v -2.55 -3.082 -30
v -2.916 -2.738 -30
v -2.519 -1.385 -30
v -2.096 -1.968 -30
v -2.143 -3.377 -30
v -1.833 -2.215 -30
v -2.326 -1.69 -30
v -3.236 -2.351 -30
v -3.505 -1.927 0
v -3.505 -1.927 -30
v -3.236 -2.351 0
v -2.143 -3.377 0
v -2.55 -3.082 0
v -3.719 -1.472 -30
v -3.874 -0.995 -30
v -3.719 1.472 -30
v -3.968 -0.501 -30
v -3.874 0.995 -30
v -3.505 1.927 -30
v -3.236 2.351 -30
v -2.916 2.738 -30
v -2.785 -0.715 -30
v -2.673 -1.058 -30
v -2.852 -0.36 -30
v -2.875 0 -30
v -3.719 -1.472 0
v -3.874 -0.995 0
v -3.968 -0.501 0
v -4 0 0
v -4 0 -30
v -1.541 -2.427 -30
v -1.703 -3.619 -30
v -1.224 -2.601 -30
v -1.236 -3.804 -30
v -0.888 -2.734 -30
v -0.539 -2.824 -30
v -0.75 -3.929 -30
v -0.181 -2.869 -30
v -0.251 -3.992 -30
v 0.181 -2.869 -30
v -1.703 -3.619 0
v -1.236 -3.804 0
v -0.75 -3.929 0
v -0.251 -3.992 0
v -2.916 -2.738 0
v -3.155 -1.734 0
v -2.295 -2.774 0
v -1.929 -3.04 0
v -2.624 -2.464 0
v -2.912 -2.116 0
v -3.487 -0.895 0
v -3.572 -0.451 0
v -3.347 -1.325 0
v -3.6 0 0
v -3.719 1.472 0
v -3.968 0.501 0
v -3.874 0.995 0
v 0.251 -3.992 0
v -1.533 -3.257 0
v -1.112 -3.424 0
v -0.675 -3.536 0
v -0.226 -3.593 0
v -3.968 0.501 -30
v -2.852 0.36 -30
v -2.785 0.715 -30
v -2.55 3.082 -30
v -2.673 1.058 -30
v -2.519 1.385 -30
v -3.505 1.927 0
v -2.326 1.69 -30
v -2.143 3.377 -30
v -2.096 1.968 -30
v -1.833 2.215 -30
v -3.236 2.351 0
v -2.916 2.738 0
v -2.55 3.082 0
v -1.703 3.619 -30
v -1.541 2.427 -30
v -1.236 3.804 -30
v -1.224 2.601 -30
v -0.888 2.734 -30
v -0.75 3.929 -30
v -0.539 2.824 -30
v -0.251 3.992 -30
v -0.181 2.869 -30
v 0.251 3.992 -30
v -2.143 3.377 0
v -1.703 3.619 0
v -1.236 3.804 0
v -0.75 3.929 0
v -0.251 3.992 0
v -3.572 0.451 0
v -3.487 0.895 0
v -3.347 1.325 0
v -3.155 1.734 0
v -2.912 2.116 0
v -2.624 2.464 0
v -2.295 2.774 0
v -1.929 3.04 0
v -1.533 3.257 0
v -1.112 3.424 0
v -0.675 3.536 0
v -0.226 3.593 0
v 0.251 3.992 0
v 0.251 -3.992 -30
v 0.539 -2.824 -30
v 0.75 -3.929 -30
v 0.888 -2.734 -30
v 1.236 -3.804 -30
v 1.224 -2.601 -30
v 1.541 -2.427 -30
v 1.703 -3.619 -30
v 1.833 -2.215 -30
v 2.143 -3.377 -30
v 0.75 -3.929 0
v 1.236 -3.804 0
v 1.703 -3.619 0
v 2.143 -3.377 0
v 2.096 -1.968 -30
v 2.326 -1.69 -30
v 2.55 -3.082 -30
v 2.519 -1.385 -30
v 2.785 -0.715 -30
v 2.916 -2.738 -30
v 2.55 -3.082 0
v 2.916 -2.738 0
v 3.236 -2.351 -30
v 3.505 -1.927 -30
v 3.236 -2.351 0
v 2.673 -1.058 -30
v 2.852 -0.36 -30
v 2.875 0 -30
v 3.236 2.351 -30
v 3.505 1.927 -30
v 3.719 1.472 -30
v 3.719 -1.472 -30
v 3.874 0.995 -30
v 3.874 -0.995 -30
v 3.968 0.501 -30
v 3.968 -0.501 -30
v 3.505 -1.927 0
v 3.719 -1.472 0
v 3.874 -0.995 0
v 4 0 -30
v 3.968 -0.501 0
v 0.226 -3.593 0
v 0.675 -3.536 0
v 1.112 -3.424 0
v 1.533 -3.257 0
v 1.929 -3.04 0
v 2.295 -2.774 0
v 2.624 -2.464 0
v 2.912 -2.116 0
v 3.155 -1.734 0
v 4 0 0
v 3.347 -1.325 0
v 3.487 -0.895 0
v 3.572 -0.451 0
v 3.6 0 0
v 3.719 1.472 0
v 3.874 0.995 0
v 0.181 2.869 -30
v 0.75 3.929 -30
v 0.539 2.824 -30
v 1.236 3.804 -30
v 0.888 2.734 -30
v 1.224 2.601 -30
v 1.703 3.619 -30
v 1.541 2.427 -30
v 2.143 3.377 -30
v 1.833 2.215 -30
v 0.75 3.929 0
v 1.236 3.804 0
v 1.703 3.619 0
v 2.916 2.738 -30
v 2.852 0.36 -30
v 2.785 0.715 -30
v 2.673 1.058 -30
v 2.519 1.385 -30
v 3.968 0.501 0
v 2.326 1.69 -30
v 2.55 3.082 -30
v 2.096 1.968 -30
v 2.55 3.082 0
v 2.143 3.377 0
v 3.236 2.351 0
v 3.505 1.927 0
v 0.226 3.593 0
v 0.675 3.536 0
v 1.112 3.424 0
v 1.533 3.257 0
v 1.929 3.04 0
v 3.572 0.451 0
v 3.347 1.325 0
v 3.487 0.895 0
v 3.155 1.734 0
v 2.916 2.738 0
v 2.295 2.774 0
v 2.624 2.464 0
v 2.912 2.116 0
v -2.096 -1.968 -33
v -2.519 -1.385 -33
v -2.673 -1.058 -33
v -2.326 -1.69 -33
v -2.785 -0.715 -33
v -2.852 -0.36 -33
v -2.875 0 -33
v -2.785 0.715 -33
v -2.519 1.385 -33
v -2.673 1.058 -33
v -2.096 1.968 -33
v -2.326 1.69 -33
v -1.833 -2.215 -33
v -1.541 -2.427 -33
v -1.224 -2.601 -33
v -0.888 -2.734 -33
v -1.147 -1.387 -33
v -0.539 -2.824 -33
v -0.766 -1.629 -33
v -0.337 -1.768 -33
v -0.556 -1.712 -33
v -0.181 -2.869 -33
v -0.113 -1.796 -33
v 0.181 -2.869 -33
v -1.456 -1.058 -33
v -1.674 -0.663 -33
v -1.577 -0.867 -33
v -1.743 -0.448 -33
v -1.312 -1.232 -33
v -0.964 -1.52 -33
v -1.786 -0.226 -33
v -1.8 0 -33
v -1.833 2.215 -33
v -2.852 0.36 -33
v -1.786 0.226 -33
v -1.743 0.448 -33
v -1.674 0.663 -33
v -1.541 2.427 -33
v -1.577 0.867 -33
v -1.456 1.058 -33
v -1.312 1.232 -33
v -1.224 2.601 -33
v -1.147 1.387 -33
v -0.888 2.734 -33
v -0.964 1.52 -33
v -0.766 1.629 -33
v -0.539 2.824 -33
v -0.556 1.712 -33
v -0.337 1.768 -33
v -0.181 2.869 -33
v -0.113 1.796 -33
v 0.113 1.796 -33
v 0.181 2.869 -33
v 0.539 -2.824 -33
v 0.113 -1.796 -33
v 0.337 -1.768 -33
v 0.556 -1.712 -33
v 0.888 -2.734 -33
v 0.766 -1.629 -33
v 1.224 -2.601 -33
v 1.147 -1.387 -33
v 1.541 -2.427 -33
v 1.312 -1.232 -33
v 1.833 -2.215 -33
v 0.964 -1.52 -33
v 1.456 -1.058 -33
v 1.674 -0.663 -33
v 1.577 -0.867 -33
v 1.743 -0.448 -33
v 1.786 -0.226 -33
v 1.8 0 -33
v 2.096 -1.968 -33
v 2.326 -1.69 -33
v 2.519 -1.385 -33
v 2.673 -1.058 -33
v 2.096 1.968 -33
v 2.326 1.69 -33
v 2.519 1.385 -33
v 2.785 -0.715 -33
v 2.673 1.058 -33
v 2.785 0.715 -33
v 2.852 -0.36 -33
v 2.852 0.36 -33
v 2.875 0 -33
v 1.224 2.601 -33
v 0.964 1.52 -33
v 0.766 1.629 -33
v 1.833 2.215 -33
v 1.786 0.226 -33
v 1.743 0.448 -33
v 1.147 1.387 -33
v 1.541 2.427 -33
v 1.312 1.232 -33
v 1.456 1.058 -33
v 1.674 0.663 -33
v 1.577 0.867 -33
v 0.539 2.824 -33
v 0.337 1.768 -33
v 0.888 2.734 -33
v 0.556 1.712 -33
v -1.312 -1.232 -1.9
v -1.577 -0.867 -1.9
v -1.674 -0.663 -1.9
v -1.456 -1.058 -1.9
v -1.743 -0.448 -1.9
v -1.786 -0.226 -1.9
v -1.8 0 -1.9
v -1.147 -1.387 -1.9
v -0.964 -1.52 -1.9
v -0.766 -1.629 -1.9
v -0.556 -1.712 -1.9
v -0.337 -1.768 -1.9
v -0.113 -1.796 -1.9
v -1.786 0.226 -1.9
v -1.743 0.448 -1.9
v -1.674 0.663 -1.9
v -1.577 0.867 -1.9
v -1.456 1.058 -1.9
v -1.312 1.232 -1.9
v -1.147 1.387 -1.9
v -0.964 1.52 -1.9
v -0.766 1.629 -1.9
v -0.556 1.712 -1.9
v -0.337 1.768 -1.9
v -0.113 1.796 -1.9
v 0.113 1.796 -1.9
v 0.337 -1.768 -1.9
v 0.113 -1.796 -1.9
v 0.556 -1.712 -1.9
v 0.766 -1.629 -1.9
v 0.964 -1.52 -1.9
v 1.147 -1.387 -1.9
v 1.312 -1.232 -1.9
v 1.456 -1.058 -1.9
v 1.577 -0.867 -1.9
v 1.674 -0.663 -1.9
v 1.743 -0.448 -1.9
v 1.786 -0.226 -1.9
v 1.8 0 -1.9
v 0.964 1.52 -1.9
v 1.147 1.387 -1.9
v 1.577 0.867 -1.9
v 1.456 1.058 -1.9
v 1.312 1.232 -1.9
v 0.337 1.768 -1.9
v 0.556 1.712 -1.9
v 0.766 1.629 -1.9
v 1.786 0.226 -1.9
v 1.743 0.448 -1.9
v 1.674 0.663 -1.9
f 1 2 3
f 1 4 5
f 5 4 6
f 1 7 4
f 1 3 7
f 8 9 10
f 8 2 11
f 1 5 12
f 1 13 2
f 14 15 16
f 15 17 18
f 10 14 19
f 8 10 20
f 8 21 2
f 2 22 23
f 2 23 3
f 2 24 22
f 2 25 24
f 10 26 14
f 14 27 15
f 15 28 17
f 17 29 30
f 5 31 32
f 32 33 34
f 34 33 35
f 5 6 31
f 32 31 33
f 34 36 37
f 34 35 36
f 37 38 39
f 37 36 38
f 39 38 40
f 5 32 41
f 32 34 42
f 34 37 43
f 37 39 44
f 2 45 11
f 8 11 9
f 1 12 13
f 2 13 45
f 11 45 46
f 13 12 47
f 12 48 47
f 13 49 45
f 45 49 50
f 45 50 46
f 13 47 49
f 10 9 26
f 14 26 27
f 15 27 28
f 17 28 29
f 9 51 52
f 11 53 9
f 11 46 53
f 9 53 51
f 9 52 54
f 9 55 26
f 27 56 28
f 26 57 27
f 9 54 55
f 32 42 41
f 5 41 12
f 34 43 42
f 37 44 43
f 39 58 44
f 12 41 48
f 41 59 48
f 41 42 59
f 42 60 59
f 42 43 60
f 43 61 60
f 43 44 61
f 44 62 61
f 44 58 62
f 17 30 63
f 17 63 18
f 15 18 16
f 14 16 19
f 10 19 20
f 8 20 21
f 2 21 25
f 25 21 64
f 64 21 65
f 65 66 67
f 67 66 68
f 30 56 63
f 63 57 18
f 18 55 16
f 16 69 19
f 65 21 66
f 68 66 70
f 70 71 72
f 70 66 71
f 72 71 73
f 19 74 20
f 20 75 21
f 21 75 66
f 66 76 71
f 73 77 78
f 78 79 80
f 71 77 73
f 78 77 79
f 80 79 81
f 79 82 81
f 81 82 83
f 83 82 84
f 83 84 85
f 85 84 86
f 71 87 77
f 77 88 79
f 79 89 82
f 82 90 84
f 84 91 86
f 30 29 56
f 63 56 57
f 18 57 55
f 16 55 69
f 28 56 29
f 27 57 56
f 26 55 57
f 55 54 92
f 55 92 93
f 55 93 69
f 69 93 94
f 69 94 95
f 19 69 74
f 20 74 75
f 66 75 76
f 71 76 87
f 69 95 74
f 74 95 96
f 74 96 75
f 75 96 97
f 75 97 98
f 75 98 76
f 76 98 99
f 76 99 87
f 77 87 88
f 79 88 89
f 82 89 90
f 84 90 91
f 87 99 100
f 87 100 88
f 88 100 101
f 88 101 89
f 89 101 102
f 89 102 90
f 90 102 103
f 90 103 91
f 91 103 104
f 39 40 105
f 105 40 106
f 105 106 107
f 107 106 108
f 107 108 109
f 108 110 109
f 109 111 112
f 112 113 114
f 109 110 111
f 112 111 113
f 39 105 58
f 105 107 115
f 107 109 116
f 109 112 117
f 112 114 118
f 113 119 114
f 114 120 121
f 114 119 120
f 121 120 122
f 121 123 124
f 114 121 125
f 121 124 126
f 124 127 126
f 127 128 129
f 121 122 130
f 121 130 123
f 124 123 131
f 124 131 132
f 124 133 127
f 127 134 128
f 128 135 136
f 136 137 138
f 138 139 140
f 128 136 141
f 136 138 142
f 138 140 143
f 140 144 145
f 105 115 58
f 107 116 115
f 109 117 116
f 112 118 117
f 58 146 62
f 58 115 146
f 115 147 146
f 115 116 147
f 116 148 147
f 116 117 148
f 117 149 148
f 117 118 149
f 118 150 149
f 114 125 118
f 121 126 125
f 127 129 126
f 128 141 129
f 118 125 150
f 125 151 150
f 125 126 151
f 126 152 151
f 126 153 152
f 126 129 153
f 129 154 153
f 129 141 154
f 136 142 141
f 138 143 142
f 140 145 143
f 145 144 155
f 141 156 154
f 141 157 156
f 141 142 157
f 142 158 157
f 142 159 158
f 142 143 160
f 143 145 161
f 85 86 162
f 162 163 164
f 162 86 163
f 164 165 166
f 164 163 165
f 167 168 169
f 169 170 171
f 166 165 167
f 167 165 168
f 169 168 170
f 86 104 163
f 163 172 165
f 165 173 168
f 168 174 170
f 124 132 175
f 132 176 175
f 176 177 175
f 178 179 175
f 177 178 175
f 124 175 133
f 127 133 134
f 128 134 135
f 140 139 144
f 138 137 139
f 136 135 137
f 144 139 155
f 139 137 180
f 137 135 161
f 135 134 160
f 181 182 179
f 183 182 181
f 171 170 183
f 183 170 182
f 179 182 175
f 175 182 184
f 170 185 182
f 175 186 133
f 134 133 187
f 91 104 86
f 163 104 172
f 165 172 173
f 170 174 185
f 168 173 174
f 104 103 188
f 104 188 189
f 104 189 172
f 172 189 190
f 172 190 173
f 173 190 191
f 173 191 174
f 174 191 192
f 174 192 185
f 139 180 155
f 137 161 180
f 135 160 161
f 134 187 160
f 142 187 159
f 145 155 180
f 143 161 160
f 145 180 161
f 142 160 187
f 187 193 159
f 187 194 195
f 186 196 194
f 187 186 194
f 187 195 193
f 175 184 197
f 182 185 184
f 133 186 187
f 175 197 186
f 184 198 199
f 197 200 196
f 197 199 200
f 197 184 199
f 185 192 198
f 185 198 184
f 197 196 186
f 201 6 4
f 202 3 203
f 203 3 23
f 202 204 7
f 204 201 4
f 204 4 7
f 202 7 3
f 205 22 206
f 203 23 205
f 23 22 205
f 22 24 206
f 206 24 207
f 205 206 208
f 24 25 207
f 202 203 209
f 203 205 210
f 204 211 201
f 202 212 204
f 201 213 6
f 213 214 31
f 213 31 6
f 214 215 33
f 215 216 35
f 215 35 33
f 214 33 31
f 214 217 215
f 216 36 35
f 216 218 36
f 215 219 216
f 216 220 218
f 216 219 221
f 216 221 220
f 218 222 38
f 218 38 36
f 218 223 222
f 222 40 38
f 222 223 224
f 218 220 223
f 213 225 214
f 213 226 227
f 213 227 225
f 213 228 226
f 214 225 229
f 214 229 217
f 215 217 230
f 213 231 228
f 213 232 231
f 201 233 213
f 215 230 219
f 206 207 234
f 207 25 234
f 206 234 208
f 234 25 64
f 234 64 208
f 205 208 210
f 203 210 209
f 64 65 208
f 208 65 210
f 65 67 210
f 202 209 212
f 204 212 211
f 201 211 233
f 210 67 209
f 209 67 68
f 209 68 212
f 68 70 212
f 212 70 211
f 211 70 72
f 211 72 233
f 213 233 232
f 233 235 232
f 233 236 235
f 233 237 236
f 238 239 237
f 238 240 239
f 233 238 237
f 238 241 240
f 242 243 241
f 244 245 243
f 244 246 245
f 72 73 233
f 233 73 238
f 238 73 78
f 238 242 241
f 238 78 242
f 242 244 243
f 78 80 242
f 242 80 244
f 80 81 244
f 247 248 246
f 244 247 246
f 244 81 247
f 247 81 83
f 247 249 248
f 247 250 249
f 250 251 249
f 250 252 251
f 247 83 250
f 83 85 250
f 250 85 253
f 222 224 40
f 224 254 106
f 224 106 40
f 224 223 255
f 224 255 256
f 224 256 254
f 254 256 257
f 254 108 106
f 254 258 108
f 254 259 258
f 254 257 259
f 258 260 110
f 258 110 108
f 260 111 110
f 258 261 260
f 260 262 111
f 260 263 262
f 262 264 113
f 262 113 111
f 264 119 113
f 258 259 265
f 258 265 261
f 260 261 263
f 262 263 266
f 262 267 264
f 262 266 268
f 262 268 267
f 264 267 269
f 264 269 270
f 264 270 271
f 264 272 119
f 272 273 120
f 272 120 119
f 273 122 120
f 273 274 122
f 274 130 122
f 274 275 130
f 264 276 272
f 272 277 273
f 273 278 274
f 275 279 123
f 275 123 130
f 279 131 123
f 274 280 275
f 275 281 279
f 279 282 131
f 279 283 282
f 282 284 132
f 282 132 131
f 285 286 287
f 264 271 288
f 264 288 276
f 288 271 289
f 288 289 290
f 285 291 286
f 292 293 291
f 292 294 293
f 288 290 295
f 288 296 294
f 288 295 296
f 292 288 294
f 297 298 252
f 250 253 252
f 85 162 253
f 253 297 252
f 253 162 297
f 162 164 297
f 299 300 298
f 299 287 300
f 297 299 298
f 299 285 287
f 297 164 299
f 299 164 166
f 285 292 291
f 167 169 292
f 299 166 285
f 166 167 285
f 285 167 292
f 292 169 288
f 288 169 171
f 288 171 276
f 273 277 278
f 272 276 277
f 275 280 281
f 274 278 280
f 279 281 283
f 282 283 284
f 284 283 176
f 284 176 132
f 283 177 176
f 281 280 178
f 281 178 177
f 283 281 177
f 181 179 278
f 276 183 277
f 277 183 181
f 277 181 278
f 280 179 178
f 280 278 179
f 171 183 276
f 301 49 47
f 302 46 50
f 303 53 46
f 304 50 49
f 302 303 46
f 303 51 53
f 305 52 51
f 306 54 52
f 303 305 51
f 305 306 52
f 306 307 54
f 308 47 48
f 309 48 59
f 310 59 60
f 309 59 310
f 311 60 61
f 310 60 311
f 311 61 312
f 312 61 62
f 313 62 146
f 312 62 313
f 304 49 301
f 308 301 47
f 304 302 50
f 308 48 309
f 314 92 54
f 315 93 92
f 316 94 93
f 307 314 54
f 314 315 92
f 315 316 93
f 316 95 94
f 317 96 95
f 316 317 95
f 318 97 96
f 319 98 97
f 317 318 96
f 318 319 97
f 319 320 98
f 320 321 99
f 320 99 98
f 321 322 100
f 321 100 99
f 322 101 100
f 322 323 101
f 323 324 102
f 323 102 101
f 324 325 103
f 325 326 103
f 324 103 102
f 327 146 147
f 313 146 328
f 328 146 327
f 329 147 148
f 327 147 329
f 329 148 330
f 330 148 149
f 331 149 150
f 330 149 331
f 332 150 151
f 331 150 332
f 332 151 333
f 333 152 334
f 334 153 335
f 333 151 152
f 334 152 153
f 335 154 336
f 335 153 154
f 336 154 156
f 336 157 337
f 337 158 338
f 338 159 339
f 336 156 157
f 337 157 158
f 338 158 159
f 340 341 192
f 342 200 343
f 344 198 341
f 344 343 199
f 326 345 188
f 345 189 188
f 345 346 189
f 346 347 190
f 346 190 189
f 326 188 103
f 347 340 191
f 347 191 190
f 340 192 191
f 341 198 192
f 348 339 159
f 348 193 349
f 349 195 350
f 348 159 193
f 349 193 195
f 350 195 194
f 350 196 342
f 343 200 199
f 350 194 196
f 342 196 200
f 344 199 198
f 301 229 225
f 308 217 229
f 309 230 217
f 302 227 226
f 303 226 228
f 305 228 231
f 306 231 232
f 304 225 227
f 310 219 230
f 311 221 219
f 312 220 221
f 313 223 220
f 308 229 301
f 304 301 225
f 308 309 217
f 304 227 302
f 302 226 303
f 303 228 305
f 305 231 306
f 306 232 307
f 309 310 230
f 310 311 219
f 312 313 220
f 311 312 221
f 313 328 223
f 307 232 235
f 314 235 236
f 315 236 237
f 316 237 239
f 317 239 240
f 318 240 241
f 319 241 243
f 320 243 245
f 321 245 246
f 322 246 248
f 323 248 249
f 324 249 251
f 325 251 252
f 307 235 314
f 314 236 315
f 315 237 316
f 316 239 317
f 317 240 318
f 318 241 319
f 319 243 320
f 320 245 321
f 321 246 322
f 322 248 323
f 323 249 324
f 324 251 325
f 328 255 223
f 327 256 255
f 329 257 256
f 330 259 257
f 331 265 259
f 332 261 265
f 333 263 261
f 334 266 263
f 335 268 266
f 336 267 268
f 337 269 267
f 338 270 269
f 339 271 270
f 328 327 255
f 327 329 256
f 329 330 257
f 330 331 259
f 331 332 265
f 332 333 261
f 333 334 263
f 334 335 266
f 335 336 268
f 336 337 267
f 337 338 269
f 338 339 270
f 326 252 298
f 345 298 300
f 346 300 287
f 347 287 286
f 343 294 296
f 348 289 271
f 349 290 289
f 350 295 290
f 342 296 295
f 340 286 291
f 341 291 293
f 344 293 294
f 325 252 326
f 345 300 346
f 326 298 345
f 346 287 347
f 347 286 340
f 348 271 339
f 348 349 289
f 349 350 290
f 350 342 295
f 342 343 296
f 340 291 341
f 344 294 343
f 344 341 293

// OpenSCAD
$fn = 50;

difference() {
	union() {
		translate(v = [0, 0, -30.0]) {
			cylinder(h = 30, r = 4.0);
		}
		#translate(v = [0, 0, -33.0]) {
			cylinder(h = 33, r = 2.875);
		}
	}
	union() {
		translate(v = [0, 0, 0]) {
			rotate(a = [0, 0, 0]) {
				difference() {
					union() {
						translate(v = [0, 0, -33.0]) {
							cylinder(h = 33, r = 1.5);
						}
						translate(v = [0, 0, -1.9]) {
							cylinder(h = 1.9, r1 = 1.8, r2 = 3.6);
						}
						translate(v = [0, 0, -33.0]) {
							cylinder(h = 33, r = 1.8);
						}
						translate(v = [0, 0, -33.0]) {
							cylinder(h = 33, r = 1.5);
						}
					}
					union();
				}
			}
		}
	}
}
